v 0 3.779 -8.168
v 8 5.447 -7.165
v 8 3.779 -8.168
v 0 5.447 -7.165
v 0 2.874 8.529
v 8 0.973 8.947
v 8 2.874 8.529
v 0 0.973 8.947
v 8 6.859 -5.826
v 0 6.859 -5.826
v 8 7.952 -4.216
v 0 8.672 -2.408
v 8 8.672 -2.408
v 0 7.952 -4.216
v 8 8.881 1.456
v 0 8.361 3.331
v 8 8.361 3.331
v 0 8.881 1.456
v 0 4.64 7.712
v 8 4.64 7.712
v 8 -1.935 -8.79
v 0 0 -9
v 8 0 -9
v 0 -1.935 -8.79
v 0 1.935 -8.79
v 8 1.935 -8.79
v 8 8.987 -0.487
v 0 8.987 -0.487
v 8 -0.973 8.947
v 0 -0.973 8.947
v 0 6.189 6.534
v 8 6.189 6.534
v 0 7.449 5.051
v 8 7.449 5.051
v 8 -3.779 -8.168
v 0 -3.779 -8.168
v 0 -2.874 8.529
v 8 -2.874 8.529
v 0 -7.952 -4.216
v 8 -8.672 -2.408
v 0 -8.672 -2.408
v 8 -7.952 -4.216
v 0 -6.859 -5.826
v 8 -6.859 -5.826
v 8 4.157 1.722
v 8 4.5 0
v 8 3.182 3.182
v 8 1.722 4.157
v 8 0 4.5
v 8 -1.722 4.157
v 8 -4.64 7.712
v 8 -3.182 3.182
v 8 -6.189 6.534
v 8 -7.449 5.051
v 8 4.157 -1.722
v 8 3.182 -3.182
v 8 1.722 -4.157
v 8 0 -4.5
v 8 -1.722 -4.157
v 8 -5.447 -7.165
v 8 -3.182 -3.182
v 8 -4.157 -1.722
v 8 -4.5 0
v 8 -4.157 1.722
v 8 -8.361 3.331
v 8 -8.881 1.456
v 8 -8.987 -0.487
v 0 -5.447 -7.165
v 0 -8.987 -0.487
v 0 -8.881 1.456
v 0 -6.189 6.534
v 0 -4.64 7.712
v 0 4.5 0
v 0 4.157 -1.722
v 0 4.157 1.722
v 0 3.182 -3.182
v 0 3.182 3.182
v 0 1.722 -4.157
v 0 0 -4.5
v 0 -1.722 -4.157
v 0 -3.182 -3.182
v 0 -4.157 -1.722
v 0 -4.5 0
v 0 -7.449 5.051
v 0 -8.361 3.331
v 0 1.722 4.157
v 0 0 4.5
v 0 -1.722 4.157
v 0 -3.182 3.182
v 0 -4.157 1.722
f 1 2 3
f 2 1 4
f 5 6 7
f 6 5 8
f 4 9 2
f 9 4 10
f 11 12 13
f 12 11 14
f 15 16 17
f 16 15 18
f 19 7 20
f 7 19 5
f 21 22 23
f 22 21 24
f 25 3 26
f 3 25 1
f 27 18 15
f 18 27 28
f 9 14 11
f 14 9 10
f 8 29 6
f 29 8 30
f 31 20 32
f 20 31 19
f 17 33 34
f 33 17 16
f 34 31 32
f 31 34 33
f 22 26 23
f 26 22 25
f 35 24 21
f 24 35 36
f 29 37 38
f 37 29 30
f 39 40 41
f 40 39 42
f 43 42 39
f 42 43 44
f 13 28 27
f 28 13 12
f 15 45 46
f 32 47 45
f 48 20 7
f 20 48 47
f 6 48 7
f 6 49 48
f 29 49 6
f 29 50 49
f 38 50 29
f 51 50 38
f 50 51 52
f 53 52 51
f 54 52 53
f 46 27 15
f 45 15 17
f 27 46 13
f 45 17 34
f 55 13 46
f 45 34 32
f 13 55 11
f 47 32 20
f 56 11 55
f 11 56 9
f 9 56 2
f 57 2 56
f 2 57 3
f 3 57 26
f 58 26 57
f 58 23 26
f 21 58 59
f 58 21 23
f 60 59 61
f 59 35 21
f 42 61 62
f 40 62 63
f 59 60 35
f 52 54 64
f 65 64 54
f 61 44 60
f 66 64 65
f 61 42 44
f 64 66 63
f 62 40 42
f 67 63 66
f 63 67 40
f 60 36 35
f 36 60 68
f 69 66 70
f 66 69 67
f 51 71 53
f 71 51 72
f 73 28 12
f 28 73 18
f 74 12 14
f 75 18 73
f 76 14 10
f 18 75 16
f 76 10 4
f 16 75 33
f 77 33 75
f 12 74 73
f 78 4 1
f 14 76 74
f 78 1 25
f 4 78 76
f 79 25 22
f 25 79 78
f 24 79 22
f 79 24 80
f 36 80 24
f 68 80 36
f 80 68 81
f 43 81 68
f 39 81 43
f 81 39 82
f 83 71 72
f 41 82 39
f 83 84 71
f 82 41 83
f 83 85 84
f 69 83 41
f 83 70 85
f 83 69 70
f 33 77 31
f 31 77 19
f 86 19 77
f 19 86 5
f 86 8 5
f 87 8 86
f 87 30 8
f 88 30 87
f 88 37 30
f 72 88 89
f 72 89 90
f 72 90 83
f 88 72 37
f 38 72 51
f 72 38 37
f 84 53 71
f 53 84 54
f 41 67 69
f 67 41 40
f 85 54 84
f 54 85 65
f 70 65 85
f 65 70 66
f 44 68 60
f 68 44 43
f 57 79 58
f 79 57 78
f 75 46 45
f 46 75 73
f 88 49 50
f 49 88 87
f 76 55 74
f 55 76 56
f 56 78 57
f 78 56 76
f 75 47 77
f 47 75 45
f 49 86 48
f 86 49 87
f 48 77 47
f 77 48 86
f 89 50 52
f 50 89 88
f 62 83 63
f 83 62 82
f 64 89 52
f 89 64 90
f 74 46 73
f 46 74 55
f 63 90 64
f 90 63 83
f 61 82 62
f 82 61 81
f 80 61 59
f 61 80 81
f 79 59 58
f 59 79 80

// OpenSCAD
// file: vars.scad
SIDE_WIDTH = 8;
RESERVE_V = 10;
RESERVE_H = 15;
RESERVE_R = 0.5;
OUTER_R = 100;
INNER_R = 25;
SPOOL_WIDTH = 70;
AXIS_R = 5;
// main file
include <vars.scad>

module axis_stopper()
{
    translate([0,0,0])
    rotate([0,90,0])
    difference()
    {
        cylinder(h = SIDE_WIDTH, r = AXIS_R + SIDE_WIDTH/2);
        translate([0,0,-SIDE_WIDTH])
        cylinder(h = SIDE_WIDTH * 3, r = AXIS_R - RESERVE_R, $fn = 16);
    }
}

axis_stopper();
